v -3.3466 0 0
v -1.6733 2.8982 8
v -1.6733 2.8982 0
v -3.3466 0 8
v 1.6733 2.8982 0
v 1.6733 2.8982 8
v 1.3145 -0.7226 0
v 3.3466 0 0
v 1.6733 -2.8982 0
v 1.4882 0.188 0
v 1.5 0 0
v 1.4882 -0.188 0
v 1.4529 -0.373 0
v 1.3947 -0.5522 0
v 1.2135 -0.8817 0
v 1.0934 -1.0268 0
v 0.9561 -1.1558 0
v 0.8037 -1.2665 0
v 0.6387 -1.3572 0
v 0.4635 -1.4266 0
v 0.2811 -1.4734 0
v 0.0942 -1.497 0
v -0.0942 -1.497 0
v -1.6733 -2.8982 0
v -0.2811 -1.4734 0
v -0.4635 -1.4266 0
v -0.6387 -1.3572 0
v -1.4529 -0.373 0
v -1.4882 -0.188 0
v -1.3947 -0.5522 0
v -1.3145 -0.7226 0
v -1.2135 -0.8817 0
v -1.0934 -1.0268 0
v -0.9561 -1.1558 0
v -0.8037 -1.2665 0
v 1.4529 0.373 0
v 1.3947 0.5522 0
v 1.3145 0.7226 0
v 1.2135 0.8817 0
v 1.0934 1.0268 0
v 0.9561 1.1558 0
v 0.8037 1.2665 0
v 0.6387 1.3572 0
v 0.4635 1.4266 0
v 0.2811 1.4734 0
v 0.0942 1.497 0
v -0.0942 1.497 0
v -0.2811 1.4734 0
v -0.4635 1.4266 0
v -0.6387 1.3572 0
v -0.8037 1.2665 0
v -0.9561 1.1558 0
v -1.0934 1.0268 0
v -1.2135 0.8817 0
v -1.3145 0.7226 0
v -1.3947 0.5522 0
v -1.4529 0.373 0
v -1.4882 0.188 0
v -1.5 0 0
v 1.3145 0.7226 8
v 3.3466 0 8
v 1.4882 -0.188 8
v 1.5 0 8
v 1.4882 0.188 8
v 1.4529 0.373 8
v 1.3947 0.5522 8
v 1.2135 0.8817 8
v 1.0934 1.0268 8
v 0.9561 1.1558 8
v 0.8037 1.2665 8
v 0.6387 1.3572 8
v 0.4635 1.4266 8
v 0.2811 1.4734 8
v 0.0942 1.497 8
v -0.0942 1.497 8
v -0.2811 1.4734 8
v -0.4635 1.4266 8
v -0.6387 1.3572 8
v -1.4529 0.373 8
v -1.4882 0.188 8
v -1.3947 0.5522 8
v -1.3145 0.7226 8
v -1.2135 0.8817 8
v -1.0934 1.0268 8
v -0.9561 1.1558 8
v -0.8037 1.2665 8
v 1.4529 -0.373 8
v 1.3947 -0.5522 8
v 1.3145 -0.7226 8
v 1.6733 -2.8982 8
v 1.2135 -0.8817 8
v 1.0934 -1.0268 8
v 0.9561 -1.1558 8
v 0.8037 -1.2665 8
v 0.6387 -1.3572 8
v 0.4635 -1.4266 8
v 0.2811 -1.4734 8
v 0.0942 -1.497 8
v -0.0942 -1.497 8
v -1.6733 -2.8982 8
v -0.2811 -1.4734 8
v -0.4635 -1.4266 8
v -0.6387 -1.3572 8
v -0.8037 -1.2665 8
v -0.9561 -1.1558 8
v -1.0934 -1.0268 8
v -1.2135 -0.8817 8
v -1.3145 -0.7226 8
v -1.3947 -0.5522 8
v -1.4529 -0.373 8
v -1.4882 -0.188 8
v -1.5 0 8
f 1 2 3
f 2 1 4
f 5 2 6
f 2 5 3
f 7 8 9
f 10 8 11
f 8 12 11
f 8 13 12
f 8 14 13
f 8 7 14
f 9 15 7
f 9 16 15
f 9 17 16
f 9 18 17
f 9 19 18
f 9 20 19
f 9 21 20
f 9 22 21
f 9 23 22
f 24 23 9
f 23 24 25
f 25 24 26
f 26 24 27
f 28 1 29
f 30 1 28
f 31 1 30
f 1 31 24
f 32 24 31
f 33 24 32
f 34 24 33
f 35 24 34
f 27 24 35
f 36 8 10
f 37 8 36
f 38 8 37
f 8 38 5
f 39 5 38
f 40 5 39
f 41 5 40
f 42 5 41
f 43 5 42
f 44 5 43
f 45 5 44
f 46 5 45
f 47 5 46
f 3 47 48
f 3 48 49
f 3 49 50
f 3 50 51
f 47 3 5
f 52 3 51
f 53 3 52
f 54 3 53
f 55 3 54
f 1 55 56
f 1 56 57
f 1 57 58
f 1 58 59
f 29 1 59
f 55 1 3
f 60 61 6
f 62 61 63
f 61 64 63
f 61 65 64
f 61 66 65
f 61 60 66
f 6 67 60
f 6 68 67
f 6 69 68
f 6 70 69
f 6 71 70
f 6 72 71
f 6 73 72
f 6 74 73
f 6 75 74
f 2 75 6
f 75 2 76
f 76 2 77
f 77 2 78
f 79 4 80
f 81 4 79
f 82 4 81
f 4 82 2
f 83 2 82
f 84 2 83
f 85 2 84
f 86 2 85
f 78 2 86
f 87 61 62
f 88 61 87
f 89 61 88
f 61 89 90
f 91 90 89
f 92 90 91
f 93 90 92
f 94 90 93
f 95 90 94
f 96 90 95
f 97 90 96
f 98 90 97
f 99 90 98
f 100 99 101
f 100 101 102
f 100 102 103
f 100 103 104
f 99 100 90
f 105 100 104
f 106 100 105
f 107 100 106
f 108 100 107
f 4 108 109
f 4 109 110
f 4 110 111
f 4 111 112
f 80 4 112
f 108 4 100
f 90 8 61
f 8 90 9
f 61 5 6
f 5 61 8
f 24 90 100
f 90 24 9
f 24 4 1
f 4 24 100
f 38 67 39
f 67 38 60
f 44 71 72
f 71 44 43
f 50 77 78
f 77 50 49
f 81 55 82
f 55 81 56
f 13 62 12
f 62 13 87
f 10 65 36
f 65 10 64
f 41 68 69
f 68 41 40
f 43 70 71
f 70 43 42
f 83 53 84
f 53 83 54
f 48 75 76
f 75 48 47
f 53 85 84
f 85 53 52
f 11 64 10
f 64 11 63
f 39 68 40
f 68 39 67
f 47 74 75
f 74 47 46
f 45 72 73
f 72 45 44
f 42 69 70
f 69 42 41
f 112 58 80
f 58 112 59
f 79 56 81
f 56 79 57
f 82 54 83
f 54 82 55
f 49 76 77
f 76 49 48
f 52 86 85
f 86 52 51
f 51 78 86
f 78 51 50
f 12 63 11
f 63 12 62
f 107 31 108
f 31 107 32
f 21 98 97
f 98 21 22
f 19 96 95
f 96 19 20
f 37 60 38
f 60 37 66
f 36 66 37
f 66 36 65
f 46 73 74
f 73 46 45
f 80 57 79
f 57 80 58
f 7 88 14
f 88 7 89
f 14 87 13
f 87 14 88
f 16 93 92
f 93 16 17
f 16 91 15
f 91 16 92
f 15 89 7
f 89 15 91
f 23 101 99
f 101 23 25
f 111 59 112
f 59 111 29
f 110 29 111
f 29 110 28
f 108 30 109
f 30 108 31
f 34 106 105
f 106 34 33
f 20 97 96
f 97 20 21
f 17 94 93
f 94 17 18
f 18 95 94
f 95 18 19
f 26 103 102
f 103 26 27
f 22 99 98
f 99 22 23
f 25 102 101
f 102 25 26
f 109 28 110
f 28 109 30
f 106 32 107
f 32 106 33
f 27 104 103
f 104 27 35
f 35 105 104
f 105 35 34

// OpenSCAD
$fn = 50;


difference() {
	union() {
		linear_extrude(height = 8) {
			polygon(points = [[3.3466000000, 0.0000000000], [1.6733000000, 2.8982406163], [-1.6733000000, 2.8982406163], [-3.3466000000, 0.0000000000], [-1.6733000000, -2.8982406163], [1.6733000000, -2.8982406163]]);
		}
	}
	union() {
		cylinder(h = 8, r = 1.5000000000);
	}
}
